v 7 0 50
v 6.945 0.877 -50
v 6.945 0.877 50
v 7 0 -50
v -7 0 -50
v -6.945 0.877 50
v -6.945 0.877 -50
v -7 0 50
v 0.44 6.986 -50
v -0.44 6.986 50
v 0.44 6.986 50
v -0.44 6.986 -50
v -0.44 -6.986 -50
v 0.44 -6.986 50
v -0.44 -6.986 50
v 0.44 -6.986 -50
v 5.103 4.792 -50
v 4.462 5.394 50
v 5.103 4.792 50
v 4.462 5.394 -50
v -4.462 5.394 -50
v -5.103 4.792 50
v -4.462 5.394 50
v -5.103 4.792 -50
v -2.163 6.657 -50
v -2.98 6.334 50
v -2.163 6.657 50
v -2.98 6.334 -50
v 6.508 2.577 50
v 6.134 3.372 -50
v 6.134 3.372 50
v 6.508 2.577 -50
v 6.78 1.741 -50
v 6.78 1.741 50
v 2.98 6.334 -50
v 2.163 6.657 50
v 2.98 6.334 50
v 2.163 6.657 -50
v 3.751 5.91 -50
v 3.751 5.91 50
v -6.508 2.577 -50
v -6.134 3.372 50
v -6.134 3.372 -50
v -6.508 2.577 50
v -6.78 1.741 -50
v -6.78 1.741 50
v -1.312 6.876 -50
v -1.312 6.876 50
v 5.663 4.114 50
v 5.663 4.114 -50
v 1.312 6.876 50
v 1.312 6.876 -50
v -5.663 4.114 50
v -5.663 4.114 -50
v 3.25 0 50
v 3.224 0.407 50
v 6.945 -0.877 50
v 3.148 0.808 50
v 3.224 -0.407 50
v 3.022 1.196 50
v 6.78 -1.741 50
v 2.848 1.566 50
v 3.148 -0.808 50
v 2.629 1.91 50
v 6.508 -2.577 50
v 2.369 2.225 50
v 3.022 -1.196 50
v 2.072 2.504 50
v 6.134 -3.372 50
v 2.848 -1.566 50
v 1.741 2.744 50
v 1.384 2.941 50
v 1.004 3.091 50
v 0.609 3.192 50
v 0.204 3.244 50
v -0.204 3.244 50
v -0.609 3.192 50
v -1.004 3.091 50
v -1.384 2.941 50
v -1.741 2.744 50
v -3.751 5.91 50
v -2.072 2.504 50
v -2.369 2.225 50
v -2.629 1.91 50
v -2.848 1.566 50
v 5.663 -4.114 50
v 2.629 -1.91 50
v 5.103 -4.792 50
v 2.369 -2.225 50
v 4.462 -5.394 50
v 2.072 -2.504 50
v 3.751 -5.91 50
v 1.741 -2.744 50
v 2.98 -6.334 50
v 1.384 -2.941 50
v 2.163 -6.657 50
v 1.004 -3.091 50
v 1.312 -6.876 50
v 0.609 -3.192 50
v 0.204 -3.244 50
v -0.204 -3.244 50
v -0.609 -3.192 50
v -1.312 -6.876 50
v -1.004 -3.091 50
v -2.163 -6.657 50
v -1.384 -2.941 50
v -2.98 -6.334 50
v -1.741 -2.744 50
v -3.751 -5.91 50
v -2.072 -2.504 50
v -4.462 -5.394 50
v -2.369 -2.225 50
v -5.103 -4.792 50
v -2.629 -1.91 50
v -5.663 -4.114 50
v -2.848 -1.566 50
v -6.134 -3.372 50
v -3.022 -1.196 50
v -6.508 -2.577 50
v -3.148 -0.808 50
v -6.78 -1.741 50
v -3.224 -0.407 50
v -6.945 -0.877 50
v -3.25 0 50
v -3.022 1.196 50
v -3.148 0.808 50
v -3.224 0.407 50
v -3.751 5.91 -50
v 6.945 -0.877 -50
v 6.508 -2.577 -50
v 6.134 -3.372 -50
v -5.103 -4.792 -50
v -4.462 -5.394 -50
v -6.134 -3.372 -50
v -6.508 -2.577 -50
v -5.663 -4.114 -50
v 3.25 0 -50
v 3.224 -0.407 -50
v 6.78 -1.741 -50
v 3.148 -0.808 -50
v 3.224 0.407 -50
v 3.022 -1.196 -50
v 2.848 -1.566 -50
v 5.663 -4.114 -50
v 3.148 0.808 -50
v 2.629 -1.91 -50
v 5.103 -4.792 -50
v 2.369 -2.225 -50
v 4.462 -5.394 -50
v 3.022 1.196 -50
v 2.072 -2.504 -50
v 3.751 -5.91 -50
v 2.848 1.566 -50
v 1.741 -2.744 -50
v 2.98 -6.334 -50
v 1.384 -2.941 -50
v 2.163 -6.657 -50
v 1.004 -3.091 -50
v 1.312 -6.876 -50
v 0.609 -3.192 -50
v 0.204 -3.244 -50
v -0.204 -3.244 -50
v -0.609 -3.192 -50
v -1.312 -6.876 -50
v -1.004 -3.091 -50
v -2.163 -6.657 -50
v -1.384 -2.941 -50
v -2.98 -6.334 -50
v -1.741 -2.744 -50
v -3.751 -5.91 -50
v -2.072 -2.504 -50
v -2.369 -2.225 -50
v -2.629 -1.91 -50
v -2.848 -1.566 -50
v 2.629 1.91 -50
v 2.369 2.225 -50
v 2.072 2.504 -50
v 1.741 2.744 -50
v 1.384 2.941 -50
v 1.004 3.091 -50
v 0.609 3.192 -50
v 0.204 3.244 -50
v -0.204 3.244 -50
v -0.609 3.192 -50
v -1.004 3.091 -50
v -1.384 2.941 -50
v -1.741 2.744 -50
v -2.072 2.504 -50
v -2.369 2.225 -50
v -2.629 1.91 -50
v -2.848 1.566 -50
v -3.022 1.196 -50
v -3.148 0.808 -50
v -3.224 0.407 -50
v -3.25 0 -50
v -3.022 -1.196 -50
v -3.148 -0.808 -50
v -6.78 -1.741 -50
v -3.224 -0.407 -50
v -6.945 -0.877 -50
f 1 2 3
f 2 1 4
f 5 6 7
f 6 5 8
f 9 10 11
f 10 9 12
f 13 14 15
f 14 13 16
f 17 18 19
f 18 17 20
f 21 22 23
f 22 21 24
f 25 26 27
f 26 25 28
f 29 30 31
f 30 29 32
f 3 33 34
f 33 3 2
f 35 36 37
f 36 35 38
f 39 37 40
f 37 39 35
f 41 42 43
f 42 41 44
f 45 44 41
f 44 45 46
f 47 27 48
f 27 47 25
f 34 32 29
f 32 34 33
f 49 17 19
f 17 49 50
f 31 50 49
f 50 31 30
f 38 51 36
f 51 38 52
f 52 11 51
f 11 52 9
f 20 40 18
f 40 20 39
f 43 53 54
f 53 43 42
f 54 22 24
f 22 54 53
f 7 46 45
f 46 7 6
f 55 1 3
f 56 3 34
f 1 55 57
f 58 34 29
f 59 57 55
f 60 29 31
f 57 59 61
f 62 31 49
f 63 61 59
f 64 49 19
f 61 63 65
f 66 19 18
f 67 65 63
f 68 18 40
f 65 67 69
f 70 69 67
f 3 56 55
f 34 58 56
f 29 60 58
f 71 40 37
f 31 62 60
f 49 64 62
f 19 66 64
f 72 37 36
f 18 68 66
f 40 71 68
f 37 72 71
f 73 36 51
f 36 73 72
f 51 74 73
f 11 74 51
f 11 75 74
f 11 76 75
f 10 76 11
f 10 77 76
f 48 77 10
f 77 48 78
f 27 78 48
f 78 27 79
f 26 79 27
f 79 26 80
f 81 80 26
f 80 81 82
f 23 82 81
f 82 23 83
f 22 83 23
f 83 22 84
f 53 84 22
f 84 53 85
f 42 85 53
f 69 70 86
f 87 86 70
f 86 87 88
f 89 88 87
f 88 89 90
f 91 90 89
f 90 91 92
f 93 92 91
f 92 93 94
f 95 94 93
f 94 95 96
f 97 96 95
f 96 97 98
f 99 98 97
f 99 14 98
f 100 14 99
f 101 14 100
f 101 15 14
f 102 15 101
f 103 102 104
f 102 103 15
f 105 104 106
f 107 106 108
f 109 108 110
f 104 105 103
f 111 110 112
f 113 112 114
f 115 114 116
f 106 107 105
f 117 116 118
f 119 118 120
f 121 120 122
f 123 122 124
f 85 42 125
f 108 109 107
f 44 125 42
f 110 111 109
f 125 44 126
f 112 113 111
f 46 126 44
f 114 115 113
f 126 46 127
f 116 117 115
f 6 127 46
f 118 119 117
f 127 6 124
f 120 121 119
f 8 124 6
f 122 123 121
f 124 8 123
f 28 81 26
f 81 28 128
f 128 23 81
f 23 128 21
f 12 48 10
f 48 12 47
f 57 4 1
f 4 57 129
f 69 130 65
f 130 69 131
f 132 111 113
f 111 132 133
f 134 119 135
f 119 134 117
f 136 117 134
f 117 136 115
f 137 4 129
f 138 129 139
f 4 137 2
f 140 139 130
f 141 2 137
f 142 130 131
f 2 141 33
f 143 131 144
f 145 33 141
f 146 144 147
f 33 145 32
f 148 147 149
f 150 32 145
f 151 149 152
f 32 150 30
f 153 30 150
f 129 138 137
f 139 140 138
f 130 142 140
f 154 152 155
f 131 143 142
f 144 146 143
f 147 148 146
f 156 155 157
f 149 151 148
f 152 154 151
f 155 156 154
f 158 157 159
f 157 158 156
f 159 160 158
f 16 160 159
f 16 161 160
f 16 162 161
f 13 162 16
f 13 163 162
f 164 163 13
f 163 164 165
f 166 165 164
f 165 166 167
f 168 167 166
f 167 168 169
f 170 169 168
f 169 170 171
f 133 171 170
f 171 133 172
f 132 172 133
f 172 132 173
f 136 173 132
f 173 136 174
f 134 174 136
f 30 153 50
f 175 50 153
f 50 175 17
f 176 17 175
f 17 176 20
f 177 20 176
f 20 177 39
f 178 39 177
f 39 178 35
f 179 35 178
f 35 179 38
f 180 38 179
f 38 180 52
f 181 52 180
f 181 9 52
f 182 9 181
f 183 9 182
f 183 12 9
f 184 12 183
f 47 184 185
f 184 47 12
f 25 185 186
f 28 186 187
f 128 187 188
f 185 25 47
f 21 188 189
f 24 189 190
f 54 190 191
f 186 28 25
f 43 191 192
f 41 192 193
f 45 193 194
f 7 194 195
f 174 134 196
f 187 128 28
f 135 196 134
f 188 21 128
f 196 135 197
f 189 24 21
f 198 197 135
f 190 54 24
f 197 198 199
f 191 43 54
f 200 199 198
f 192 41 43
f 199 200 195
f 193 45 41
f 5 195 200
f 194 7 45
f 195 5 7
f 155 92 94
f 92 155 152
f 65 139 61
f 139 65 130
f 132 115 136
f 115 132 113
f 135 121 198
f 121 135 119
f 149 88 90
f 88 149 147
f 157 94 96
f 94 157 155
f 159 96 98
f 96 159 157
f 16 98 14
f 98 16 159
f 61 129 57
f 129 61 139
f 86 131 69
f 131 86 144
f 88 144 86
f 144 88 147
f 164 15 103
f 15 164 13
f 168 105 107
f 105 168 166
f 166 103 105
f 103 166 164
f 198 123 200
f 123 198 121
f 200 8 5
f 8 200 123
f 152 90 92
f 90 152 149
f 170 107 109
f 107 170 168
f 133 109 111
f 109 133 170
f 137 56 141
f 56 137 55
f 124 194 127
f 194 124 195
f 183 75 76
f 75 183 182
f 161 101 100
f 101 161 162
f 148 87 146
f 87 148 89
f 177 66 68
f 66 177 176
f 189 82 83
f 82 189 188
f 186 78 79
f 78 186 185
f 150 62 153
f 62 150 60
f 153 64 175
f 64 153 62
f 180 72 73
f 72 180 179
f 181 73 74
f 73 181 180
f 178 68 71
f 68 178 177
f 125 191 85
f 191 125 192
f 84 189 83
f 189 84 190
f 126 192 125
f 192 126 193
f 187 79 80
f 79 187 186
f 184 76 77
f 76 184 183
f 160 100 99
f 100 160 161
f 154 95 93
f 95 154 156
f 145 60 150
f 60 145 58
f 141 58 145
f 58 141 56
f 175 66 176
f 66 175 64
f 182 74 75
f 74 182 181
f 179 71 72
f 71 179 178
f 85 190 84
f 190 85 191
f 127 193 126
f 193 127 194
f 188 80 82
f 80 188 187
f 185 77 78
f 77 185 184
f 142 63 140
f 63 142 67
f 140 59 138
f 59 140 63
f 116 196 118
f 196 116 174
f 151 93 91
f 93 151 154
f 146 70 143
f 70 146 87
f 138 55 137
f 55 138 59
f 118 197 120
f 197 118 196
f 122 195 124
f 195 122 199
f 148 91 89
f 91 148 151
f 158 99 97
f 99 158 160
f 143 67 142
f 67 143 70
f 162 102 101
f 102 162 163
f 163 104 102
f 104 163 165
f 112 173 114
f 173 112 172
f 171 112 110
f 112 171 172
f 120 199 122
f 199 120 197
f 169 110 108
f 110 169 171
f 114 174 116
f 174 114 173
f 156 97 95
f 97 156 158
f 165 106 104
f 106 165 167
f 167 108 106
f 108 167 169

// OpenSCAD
$fn = 50;


difference() {
	union() {
		translate(v = [0, 0, -50.0000000000]) {
			cylinder(h = 100, r = 7.0000000000);
		}
	}
	union() {
		translate(v = [0, 0, -100.0000000000]) {
			cylinder(h = 200, r = 3.2500000000);
		}
	}
}
